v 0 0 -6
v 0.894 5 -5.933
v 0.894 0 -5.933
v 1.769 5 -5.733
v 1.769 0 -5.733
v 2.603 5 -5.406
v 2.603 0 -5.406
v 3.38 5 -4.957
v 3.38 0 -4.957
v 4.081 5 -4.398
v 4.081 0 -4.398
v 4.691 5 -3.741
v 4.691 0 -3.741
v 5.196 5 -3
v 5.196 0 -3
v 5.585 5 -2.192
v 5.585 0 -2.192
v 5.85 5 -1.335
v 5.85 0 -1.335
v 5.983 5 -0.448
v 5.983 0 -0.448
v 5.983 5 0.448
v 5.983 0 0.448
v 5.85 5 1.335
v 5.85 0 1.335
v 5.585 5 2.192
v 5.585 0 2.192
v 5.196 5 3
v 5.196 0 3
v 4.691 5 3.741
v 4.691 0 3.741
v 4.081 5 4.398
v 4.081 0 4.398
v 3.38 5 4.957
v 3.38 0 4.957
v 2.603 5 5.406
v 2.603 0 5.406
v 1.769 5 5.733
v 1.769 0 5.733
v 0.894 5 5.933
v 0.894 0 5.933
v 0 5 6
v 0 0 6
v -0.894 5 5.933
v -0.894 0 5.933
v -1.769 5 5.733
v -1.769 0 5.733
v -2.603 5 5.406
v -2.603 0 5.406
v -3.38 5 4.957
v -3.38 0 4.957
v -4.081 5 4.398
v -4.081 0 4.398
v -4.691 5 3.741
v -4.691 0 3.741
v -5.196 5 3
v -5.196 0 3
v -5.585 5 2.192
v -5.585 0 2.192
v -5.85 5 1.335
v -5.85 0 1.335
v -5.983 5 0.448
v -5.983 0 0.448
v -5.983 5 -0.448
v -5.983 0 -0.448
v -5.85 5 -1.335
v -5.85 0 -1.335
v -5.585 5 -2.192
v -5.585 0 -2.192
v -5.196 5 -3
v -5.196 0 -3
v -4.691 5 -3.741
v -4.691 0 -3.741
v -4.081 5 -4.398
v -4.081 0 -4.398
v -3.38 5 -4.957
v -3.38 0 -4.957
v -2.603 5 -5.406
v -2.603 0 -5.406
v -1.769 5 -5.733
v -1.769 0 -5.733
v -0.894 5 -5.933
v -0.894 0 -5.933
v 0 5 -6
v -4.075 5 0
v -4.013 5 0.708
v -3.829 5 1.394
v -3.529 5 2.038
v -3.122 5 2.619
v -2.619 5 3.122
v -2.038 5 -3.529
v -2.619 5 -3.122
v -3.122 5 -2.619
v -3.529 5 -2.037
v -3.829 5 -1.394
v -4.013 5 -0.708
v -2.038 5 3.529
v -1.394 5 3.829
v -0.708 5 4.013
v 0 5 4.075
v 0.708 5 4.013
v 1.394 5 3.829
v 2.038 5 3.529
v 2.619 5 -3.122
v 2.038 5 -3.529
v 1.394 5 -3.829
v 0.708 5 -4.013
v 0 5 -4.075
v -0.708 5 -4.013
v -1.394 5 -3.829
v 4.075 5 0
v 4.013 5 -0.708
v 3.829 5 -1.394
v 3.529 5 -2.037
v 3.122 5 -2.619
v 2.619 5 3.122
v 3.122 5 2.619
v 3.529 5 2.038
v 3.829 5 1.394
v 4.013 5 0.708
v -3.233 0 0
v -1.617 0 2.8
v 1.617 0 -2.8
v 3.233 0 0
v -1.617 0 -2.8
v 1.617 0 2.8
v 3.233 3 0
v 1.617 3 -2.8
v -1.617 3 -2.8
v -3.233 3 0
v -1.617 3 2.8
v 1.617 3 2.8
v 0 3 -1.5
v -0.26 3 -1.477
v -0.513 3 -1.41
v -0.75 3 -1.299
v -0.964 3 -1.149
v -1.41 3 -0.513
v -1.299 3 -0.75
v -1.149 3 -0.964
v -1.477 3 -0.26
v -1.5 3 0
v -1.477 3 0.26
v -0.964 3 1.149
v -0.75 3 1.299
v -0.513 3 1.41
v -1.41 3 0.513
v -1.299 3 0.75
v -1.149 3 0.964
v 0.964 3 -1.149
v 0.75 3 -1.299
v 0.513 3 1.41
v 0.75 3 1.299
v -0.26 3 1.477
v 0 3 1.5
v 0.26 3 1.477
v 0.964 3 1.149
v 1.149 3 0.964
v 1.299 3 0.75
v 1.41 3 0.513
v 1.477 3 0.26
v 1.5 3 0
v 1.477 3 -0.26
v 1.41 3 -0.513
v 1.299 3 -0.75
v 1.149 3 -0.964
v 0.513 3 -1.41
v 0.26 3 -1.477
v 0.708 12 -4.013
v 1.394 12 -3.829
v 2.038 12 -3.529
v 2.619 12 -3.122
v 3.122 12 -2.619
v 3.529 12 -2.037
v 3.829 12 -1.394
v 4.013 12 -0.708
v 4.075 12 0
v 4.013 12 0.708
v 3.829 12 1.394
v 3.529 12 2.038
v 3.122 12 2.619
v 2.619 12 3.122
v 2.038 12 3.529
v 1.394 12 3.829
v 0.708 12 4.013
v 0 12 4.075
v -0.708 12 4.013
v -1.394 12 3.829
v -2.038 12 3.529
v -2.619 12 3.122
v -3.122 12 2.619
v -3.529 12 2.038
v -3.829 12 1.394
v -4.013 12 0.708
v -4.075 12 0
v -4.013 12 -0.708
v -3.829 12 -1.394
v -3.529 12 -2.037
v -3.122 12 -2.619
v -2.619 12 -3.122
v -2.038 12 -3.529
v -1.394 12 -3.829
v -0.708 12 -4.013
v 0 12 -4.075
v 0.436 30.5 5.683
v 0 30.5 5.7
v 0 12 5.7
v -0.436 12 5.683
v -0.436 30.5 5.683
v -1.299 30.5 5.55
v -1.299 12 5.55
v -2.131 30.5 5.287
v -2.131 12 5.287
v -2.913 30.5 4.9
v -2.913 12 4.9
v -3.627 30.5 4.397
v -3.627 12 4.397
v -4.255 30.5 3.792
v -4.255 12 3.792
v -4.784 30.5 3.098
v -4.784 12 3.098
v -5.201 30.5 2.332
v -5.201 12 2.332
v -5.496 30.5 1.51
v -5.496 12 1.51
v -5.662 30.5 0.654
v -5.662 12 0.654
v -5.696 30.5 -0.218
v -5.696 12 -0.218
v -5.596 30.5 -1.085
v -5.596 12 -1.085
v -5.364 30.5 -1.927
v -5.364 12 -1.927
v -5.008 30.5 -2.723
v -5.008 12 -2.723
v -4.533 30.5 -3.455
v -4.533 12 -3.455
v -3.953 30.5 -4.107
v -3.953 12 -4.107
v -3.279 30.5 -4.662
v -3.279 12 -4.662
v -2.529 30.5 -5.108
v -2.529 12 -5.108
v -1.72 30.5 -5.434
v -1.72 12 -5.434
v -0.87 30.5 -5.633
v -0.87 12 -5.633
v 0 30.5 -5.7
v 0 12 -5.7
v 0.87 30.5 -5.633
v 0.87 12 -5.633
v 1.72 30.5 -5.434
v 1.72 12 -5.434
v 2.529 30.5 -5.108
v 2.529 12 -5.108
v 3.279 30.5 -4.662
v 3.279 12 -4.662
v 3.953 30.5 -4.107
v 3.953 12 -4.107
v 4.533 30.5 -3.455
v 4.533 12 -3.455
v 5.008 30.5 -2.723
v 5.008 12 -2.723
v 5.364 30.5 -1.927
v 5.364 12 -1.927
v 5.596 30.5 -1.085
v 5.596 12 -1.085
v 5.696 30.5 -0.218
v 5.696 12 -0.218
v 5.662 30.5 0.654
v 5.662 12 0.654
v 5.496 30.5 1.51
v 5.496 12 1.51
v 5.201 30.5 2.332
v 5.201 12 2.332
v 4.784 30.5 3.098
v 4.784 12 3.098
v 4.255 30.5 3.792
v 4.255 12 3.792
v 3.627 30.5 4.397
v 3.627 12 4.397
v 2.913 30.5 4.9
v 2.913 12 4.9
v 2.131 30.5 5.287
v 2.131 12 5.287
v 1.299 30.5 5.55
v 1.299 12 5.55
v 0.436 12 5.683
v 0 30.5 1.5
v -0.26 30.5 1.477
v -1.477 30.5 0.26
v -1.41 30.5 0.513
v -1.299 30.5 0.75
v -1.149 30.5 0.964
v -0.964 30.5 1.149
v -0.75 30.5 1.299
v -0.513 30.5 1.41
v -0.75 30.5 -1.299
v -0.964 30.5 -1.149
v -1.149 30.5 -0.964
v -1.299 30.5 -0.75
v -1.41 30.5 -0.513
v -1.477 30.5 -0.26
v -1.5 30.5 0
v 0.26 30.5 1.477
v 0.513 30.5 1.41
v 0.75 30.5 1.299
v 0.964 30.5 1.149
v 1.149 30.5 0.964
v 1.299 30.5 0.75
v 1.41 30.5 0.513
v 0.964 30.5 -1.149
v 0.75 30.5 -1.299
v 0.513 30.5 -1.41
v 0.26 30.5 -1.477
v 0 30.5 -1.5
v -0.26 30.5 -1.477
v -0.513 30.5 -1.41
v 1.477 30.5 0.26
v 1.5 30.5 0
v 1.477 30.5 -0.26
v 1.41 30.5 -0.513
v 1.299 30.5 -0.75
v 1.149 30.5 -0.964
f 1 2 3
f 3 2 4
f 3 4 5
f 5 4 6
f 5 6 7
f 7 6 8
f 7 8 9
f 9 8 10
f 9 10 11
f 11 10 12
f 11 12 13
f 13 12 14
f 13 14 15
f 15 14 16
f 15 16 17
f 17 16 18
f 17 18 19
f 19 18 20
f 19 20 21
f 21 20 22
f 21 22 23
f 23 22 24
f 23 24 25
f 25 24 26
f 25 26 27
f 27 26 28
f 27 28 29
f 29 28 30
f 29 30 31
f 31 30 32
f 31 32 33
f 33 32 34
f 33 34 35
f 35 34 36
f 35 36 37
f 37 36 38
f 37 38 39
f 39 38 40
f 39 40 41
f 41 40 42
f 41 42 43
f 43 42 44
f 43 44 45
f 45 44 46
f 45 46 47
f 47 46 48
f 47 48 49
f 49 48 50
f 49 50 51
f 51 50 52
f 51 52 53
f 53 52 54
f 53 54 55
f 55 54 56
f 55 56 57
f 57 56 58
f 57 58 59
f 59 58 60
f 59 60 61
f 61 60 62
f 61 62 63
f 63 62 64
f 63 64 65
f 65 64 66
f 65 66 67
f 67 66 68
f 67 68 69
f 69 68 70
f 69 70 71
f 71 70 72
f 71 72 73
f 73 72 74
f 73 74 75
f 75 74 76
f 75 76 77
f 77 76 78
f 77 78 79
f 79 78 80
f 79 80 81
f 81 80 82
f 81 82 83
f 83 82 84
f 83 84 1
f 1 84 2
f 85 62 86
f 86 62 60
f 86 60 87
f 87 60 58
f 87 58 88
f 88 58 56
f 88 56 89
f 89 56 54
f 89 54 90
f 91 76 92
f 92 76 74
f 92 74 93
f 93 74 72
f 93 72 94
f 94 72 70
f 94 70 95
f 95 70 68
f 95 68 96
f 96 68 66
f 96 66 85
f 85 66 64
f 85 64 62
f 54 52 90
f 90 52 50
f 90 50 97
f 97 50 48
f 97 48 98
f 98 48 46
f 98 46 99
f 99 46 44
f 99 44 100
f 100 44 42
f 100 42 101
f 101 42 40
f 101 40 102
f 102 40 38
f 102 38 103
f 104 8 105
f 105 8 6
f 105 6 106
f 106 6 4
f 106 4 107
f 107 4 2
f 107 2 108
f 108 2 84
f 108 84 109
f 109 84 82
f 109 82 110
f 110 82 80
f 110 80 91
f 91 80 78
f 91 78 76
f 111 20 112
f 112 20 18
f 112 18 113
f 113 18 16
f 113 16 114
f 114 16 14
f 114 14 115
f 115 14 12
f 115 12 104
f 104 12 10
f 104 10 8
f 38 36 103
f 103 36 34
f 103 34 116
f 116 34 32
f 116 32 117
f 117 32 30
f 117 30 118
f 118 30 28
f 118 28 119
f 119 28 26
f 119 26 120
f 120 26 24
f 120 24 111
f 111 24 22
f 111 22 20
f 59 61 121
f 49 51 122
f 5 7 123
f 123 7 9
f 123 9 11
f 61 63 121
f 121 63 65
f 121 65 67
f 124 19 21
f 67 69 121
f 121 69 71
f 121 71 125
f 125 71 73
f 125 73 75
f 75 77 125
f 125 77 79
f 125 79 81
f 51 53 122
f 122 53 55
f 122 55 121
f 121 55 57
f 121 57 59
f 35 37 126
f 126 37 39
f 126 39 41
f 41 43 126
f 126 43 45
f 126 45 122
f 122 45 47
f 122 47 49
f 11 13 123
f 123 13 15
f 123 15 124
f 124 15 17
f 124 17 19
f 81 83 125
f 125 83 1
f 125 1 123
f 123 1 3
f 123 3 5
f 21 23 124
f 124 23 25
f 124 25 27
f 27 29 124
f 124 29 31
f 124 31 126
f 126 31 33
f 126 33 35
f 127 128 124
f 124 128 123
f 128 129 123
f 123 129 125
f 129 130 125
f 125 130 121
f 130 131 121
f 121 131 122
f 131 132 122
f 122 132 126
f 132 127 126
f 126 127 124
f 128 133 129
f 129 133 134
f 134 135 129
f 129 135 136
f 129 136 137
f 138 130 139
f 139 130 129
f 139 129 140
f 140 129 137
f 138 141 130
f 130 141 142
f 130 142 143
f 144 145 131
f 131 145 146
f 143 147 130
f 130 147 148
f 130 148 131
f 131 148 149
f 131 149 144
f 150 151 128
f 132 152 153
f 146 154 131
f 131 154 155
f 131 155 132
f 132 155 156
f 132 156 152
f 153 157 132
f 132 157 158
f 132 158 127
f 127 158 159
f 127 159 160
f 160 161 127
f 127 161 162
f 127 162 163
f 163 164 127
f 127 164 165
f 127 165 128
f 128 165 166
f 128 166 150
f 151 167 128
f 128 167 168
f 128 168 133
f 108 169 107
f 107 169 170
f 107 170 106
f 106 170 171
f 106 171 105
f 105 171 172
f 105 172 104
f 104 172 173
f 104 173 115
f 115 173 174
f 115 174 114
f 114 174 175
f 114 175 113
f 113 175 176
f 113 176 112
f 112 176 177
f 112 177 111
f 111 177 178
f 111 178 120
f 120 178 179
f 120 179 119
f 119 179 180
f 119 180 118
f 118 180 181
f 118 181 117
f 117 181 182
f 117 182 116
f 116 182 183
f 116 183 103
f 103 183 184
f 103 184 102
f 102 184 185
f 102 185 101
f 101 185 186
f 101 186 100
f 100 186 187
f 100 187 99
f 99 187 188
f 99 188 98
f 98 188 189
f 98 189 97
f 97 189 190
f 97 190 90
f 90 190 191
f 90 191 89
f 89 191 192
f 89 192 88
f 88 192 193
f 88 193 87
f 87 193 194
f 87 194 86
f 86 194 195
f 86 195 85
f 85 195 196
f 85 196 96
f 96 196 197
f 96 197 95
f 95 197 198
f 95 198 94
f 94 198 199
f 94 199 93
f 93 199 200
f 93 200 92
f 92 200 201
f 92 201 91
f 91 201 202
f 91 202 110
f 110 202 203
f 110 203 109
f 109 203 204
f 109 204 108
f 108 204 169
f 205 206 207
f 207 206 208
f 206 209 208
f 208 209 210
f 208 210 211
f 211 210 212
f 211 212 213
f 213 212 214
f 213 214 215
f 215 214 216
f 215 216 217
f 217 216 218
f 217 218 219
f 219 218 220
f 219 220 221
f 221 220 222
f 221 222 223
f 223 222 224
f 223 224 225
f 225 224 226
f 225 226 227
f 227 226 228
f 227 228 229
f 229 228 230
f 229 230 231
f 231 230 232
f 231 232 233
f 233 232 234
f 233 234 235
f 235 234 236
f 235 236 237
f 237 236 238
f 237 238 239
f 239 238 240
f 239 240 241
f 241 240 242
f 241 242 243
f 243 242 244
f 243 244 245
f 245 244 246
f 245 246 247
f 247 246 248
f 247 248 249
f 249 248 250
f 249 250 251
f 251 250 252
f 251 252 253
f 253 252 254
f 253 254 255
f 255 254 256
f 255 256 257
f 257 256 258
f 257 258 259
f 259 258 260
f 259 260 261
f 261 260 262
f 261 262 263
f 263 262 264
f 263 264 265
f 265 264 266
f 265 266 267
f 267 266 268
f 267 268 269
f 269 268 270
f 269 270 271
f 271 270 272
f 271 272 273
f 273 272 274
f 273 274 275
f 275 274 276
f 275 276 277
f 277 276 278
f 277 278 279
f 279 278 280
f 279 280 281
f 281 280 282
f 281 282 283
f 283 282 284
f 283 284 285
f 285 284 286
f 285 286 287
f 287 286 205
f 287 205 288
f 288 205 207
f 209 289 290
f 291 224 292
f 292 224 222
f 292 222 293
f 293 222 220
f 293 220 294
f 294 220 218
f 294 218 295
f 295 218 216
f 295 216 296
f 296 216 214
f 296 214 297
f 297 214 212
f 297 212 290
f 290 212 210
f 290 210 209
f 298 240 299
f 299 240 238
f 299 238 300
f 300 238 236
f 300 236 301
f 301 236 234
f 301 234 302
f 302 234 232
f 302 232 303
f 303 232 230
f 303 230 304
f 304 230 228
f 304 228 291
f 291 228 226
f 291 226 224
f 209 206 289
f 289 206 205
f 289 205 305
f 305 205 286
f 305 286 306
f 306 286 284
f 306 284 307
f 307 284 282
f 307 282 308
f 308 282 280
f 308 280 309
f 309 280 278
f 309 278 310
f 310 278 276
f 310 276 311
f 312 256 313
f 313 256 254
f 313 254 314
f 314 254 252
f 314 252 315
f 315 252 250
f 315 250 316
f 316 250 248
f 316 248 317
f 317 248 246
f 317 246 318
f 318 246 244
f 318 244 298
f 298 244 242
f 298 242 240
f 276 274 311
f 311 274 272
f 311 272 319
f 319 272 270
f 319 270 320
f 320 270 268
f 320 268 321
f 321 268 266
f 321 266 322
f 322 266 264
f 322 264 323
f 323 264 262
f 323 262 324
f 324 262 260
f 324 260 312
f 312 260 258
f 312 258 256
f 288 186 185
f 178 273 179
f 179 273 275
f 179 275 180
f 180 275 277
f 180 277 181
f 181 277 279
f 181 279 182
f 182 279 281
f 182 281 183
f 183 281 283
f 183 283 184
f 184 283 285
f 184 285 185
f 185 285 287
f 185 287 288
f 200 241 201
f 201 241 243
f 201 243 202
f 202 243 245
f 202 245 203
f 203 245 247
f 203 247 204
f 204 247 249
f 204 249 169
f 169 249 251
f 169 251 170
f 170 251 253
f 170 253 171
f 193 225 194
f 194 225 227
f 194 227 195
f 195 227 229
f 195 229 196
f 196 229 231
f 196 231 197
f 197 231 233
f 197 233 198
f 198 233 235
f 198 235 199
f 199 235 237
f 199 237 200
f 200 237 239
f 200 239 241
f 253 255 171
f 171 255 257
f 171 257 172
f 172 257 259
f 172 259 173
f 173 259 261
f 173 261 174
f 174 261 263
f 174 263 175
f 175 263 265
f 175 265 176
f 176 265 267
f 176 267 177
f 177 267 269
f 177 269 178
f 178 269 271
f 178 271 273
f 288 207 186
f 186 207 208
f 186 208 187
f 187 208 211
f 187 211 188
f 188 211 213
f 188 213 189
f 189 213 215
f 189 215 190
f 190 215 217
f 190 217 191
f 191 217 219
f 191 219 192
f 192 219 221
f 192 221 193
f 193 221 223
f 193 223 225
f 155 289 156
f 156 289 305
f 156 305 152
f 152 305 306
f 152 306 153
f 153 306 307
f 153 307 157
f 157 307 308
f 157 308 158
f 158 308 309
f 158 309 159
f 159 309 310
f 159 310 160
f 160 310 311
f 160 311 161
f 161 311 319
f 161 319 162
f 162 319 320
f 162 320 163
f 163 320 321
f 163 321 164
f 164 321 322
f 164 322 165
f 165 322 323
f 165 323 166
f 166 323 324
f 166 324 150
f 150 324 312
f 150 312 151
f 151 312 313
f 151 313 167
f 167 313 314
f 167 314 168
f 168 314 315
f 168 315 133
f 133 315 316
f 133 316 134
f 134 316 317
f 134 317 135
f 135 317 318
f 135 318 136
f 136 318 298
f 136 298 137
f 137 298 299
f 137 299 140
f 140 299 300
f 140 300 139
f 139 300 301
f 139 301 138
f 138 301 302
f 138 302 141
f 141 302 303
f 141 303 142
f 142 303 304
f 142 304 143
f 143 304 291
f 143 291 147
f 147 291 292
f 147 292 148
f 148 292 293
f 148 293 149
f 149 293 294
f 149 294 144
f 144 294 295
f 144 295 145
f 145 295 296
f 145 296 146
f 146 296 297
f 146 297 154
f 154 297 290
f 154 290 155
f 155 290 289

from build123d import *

# Parameters (mm, degrees)
SKETCH1_R                 = 6
BOSS_EXTRUDE1_DEPTH       = 5
CUT_EXTRUDE1_DEPTH        = 3
SKETCH3_R                 = 4.075
BOSS_EXTRUDE2_DEPTH       = 7
SKETCH4_R                 = 5.7
BOSS_EXTRUDE3_DEPTH       = 18.5
F_1_0MM_DOWEL_HOLE1_D     = 3
F_1_0MM_DOWEL_HOLE1_DEPTH = 30.5
F_1_0MM_DOWEL_HOLE1_TIP   = 0.901290929


with BuildPart() as part:
    # Sketch1 → Boss-Extrude1 (new body)
    with BuildSketch(Plane(origin=(0, 0, 0), x_dir=(1, 0, 0), z_dir=(0, 1, 0))):
        with Locations(Location((0, 0, 0), (0, 0, 270))):
            Circle(SKETCH1_R)
    extrude(amount=BOSS_EXTRUDE1_DEPTH)

    # Sketch2 → Cut-Extrude1 (cut)
    with BuildSketch(Plane.XZ):
        Polygon((3.233161507, 0), (1.616580754, 2.8), (-1.616580754, 2.8), (-3.233161507, 0), (-1.616580754, -2.8), (1.616580754, -2.8), align=None)
    extrude(amount=-CUT_EXTRUDE1_DEPTH, mode=Mode.SUBTRACT)

    # Sketch3 → Boss-Extrude2 (add)
    with BuildSketch(Plane(origin=(0, 5, 0), x_dir=(1, 0, 0), z_dir=(0, 1, 0))):
        with Locations(Location((0, 0, 0), (0, 0, 270))):
            Circle(SKETCH3_R)
    extrude(amount=BOSS_EXTRUDE2_DEPTH)

    # Sketch4 → Boss-Extrude3 (add)
    with BuildSketch(Plane(origin=(0, 12, 0), x_dir=(1, 0, 0), z_dir=(0, 1, 0))):
        with Locations(Location((0, 0, 0), (0, 0, 270))):
            Circle(SKETCH4_R)
    extrude(amount=BOSS_EXTRUDE3_DEPTH)

    # Ø1.0mm Dowel Hole1
    with Locations(Plane(origin=(0, 30.5, 0), x_dir=(1, 0, 0), z_dir=(0, 1, 0))):
        with Locations((0, 0)):
            Hole(F_1_0MM_DOWEL_HOLE1_D / 2, depth=F_1_0MM_DOWEL_HOLE1_DEPTH)
            with Locations((0, 0, -(F_1_0MM_DOWEL_HOLE1_DEPTH + F_1_0MM_DOWEL_HOLE1_TIP / 2))):  # 118° drill point
                Cone(0, F_1_0MM_DOWEL_HOLE1_D / 2, F_1_0MM_DOWEL_HOLE1_TIP, mode=Mode.SUBTRACT)


solid = part.part
